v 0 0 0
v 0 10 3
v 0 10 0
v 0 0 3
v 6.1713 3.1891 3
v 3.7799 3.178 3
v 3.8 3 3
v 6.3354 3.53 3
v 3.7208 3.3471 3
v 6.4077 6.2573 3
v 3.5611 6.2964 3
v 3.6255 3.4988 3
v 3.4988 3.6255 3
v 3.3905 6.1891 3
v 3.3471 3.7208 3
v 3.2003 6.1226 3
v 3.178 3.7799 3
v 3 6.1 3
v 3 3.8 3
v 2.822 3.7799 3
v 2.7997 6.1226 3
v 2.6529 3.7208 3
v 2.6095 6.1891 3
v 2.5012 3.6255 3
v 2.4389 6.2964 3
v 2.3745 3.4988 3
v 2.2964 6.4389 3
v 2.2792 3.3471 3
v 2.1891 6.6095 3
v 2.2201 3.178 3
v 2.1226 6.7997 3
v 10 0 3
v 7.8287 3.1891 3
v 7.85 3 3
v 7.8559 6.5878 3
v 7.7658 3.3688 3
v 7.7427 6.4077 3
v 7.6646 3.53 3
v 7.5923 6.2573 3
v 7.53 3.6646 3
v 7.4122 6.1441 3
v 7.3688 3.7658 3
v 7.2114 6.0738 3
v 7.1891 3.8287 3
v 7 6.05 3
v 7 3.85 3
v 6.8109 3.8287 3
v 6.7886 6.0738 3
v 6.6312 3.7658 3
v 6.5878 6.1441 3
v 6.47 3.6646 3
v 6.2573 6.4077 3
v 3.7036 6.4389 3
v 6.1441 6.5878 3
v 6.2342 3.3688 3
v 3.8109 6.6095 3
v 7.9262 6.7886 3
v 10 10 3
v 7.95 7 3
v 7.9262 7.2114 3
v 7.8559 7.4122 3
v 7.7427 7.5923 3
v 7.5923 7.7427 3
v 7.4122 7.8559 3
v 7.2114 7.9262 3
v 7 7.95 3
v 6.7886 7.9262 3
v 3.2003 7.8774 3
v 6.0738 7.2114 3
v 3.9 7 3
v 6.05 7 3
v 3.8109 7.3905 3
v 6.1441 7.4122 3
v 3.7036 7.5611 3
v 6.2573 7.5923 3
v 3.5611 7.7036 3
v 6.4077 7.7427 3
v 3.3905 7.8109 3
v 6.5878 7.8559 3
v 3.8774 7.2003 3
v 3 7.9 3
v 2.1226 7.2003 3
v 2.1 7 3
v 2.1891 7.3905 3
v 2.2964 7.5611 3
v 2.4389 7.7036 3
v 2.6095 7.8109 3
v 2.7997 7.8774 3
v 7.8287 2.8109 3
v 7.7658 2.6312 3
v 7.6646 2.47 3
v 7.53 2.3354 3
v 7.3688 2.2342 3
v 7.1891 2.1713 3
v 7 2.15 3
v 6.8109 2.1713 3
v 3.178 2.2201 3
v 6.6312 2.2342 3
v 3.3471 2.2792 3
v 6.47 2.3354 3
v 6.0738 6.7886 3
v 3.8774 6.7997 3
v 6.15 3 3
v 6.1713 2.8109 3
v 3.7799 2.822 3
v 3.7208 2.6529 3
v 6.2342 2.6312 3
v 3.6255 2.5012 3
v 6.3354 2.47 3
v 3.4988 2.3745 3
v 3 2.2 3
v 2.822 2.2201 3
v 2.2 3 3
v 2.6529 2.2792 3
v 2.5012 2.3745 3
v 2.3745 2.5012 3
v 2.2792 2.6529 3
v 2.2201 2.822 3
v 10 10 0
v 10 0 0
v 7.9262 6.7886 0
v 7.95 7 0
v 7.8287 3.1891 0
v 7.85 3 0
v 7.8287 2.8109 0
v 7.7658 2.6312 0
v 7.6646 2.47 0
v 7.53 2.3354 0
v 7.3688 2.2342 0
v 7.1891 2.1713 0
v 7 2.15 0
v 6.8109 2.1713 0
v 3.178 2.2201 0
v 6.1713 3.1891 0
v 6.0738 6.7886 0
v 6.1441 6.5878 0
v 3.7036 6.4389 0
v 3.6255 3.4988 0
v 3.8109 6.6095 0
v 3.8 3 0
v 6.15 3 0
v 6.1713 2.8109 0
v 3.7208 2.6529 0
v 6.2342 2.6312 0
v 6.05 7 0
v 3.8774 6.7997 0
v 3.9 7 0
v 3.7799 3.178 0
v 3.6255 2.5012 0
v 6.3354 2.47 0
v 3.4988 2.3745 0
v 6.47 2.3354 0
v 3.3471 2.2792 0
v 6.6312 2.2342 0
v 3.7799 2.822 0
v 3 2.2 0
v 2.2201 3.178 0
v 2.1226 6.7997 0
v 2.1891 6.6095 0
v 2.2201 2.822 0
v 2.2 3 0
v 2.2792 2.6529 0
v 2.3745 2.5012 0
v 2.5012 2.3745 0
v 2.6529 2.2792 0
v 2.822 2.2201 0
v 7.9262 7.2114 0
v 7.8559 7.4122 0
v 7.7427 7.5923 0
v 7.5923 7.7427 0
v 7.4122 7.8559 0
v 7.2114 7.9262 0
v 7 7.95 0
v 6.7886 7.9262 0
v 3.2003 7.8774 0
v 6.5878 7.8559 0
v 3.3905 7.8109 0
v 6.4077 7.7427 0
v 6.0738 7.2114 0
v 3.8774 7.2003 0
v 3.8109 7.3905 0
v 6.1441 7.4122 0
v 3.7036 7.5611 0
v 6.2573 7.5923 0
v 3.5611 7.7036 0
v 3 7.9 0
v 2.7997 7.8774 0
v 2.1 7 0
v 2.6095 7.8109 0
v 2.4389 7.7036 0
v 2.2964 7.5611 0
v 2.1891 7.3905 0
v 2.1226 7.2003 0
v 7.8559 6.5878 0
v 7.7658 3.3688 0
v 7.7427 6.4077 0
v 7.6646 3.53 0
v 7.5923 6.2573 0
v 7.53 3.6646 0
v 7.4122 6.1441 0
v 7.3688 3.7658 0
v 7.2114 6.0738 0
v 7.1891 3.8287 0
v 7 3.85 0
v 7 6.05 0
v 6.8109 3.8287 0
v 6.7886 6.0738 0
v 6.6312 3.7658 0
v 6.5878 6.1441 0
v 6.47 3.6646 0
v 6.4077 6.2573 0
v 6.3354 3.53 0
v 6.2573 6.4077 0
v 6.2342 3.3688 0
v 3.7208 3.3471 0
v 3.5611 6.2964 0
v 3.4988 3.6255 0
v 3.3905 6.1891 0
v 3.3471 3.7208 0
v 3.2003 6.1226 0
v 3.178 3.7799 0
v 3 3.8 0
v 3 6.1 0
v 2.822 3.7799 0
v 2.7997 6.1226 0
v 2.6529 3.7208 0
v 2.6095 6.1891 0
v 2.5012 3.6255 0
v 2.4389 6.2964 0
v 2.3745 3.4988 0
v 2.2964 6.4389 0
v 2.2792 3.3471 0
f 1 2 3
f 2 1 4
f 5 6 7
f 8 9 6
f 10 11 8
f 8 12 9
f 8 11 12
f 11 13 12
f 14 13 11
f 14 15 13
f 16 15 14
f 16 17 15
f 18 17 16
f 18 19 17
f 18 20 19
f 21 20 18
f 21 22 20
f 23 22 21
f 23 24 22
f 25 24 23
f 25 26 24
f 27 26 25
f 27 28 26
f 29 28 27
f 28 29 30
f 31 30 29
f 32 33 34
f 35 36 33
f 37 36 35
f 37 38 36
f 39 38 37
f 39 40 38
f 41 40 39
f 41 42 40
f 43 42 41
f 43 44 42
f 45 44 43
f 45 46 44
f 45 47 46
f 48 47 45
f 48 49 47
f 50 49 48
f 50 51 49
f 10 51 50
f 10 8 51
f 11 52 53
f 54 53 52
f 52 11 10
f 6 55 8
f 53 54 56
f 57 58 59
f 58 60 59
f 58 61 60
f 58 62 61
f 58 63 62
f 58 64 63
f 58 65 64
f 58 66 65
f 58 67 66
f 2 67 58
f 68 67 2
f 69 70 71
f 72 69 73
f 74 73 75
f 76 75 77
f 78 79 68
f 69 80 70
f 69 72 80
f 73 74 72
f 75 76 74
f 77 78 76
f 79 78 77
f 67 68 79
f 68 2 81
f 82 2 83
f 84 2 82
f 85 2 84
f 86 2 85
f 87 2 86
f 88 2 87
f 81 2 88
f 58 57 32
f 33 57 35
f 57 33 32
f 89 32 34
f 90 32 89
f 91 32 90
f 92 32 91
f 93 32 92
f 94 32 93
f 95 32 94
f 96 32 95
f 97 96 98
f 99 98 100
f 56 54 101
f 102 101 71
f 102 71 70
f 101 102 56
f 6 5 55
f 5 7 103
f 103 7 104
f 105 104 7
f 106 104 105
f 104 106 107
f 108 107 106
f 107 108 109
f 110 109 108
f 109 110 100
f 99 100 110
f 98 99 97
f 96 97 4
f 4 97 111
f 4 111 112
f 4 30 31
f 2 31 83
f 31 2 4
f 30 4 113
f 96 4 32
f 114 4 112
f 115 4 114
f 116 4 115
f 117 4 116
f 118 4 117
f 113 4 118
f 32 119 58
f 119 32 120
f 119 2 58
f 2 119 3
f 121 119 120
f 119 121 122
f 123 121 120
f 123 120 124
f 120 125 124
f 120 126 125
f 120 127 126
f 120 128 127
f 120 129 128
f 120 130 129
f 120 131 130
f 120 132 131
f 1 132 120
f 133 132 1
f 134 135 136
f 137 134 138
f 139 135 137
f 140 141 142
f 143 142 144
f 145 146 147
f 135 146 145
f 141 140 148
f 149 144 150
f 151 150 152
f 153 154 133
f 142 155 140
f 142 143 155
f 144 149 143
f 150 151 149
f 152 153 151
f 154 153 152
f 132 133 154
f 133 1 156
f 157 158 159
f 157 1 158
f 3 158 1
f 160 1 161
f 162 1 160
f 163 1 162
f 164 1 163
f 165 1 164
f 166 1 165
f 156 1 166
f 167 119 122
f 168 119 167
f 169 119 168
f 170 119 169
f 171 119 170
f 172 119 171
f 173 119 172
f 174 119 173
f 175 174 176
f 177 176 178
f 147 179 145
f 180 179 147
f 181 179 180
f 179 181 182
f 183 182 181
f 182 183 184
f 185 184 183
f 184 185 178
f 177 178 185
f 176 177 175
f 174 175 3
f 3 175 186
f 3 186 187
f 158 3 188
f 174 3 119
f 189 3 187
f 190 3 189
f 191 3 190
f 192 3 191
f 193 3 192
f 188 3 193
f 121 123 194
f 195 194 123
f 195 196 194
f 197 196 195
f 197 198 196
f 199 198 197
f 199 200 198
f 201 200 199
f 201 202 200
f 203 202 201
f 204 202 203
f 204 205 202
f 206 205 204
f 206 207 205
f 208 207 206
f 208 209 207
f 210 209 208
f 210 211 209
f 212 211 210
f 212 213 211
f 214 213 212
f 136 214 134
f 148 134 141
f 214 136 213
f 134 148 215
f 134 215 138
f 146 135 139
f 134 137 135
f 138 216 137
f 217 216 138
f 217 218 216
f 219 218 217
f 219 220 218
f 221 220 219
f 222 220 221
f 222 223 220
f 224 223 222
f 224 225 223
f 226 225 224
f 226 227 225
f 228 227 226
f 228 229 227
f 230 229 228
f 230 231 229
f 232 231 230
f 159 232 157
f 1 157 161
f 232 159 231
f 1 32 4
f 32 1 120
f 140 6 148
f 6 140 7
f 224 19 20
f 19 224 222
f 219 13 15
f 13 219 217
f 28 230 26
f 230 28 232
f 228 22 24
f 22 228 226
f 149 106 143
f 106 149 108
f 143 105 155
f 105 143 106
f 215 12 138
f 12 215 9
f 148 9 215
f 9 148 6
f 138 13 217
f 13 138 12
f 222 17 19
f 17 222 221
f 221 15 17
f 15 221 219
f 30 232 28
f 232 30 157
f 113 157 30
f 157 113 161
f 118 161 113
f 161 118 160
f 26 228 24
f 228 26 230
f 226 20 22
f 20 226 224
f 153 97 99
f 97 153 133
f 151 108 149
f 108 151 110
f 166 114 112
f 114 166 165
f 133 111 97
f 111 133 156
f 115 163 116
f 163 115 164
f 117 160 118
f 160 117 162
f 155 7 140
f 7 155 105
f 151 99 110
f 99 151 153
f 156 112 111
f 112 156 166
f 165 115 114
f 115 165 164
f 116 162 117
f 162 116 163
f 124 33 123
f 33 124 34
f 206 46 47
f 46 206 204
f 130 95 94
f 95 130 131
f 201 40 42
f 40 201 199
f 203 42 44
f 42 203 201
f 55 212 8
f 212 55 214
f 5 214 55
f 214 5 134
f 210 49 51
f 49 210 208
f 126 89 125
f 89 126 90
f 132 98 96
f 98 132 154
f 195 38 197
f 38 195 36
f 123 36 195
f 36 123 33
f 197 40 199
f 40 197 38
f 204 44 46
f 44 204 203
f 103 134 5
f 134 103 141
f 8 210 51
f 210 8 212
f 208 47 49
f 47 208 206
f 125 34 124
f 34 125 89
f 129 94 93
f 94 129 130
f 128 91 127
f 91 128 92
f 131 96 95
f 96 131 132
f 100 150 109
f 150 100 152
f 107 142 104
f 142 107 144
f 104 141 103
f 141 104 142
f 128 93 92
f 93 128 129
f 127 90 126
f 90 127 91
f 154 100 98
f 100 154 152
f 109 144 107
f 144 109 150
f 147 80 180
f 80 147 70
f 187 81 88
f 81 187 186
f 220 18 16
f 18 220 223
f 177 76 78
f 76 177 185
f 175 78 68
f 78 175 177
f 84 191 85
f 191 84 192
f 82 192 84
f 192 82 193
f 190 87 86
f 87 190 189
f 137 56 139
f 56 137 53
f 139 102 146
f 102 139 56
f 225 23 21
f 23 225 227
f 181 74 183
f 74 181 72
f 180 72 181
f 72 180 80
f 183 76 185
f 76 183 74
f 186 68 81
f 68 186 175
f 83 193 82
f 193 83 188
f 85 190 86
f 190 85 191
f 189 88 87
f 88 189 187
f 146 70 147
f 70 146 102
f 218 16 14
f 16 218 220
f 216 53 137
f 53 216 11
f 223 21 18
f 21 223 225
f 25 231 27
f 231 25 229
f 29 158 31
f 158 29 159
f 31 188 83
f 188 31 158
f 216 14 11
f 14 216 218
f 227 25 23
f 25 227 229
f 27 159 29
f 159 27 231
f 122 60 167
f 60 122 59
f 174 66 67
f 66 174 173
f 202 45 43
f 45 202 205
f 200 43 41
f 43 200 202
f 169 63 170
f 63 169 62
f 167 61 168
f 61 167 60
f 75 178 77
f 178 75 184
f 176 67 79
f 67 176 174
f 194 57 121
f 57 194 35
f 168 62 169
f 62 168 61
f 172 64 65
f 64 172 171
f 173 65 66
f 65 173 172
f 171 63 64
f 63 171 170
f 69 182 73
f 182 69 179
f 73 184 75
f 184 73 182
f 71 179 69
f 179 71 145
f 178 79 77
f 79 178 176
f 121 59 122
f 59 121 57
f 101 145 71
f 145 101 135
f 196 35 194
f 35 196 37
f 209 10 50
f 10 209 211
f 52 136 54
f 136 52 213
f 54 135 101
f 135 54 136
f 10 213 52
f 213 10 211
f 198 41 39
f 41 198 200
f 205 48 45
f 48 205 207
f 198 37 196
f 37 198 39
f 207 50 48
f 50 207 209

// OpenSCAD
difference()
{
    cube([10, 10, 3]);
    
    translate([3, 3, 0])
    cylinder(d=1.6, h=3, $fn=28);
    translate([7, 3, 0])
    cylinder(d=1.7, h=3, $fn=28);
    translate([3, 7, 0])
    cylinder(d=1.8, h=3, $fn=28);
    translate([7, 7, 0])
    cylinder(d=1.9, h=3, $fn=28);
}
